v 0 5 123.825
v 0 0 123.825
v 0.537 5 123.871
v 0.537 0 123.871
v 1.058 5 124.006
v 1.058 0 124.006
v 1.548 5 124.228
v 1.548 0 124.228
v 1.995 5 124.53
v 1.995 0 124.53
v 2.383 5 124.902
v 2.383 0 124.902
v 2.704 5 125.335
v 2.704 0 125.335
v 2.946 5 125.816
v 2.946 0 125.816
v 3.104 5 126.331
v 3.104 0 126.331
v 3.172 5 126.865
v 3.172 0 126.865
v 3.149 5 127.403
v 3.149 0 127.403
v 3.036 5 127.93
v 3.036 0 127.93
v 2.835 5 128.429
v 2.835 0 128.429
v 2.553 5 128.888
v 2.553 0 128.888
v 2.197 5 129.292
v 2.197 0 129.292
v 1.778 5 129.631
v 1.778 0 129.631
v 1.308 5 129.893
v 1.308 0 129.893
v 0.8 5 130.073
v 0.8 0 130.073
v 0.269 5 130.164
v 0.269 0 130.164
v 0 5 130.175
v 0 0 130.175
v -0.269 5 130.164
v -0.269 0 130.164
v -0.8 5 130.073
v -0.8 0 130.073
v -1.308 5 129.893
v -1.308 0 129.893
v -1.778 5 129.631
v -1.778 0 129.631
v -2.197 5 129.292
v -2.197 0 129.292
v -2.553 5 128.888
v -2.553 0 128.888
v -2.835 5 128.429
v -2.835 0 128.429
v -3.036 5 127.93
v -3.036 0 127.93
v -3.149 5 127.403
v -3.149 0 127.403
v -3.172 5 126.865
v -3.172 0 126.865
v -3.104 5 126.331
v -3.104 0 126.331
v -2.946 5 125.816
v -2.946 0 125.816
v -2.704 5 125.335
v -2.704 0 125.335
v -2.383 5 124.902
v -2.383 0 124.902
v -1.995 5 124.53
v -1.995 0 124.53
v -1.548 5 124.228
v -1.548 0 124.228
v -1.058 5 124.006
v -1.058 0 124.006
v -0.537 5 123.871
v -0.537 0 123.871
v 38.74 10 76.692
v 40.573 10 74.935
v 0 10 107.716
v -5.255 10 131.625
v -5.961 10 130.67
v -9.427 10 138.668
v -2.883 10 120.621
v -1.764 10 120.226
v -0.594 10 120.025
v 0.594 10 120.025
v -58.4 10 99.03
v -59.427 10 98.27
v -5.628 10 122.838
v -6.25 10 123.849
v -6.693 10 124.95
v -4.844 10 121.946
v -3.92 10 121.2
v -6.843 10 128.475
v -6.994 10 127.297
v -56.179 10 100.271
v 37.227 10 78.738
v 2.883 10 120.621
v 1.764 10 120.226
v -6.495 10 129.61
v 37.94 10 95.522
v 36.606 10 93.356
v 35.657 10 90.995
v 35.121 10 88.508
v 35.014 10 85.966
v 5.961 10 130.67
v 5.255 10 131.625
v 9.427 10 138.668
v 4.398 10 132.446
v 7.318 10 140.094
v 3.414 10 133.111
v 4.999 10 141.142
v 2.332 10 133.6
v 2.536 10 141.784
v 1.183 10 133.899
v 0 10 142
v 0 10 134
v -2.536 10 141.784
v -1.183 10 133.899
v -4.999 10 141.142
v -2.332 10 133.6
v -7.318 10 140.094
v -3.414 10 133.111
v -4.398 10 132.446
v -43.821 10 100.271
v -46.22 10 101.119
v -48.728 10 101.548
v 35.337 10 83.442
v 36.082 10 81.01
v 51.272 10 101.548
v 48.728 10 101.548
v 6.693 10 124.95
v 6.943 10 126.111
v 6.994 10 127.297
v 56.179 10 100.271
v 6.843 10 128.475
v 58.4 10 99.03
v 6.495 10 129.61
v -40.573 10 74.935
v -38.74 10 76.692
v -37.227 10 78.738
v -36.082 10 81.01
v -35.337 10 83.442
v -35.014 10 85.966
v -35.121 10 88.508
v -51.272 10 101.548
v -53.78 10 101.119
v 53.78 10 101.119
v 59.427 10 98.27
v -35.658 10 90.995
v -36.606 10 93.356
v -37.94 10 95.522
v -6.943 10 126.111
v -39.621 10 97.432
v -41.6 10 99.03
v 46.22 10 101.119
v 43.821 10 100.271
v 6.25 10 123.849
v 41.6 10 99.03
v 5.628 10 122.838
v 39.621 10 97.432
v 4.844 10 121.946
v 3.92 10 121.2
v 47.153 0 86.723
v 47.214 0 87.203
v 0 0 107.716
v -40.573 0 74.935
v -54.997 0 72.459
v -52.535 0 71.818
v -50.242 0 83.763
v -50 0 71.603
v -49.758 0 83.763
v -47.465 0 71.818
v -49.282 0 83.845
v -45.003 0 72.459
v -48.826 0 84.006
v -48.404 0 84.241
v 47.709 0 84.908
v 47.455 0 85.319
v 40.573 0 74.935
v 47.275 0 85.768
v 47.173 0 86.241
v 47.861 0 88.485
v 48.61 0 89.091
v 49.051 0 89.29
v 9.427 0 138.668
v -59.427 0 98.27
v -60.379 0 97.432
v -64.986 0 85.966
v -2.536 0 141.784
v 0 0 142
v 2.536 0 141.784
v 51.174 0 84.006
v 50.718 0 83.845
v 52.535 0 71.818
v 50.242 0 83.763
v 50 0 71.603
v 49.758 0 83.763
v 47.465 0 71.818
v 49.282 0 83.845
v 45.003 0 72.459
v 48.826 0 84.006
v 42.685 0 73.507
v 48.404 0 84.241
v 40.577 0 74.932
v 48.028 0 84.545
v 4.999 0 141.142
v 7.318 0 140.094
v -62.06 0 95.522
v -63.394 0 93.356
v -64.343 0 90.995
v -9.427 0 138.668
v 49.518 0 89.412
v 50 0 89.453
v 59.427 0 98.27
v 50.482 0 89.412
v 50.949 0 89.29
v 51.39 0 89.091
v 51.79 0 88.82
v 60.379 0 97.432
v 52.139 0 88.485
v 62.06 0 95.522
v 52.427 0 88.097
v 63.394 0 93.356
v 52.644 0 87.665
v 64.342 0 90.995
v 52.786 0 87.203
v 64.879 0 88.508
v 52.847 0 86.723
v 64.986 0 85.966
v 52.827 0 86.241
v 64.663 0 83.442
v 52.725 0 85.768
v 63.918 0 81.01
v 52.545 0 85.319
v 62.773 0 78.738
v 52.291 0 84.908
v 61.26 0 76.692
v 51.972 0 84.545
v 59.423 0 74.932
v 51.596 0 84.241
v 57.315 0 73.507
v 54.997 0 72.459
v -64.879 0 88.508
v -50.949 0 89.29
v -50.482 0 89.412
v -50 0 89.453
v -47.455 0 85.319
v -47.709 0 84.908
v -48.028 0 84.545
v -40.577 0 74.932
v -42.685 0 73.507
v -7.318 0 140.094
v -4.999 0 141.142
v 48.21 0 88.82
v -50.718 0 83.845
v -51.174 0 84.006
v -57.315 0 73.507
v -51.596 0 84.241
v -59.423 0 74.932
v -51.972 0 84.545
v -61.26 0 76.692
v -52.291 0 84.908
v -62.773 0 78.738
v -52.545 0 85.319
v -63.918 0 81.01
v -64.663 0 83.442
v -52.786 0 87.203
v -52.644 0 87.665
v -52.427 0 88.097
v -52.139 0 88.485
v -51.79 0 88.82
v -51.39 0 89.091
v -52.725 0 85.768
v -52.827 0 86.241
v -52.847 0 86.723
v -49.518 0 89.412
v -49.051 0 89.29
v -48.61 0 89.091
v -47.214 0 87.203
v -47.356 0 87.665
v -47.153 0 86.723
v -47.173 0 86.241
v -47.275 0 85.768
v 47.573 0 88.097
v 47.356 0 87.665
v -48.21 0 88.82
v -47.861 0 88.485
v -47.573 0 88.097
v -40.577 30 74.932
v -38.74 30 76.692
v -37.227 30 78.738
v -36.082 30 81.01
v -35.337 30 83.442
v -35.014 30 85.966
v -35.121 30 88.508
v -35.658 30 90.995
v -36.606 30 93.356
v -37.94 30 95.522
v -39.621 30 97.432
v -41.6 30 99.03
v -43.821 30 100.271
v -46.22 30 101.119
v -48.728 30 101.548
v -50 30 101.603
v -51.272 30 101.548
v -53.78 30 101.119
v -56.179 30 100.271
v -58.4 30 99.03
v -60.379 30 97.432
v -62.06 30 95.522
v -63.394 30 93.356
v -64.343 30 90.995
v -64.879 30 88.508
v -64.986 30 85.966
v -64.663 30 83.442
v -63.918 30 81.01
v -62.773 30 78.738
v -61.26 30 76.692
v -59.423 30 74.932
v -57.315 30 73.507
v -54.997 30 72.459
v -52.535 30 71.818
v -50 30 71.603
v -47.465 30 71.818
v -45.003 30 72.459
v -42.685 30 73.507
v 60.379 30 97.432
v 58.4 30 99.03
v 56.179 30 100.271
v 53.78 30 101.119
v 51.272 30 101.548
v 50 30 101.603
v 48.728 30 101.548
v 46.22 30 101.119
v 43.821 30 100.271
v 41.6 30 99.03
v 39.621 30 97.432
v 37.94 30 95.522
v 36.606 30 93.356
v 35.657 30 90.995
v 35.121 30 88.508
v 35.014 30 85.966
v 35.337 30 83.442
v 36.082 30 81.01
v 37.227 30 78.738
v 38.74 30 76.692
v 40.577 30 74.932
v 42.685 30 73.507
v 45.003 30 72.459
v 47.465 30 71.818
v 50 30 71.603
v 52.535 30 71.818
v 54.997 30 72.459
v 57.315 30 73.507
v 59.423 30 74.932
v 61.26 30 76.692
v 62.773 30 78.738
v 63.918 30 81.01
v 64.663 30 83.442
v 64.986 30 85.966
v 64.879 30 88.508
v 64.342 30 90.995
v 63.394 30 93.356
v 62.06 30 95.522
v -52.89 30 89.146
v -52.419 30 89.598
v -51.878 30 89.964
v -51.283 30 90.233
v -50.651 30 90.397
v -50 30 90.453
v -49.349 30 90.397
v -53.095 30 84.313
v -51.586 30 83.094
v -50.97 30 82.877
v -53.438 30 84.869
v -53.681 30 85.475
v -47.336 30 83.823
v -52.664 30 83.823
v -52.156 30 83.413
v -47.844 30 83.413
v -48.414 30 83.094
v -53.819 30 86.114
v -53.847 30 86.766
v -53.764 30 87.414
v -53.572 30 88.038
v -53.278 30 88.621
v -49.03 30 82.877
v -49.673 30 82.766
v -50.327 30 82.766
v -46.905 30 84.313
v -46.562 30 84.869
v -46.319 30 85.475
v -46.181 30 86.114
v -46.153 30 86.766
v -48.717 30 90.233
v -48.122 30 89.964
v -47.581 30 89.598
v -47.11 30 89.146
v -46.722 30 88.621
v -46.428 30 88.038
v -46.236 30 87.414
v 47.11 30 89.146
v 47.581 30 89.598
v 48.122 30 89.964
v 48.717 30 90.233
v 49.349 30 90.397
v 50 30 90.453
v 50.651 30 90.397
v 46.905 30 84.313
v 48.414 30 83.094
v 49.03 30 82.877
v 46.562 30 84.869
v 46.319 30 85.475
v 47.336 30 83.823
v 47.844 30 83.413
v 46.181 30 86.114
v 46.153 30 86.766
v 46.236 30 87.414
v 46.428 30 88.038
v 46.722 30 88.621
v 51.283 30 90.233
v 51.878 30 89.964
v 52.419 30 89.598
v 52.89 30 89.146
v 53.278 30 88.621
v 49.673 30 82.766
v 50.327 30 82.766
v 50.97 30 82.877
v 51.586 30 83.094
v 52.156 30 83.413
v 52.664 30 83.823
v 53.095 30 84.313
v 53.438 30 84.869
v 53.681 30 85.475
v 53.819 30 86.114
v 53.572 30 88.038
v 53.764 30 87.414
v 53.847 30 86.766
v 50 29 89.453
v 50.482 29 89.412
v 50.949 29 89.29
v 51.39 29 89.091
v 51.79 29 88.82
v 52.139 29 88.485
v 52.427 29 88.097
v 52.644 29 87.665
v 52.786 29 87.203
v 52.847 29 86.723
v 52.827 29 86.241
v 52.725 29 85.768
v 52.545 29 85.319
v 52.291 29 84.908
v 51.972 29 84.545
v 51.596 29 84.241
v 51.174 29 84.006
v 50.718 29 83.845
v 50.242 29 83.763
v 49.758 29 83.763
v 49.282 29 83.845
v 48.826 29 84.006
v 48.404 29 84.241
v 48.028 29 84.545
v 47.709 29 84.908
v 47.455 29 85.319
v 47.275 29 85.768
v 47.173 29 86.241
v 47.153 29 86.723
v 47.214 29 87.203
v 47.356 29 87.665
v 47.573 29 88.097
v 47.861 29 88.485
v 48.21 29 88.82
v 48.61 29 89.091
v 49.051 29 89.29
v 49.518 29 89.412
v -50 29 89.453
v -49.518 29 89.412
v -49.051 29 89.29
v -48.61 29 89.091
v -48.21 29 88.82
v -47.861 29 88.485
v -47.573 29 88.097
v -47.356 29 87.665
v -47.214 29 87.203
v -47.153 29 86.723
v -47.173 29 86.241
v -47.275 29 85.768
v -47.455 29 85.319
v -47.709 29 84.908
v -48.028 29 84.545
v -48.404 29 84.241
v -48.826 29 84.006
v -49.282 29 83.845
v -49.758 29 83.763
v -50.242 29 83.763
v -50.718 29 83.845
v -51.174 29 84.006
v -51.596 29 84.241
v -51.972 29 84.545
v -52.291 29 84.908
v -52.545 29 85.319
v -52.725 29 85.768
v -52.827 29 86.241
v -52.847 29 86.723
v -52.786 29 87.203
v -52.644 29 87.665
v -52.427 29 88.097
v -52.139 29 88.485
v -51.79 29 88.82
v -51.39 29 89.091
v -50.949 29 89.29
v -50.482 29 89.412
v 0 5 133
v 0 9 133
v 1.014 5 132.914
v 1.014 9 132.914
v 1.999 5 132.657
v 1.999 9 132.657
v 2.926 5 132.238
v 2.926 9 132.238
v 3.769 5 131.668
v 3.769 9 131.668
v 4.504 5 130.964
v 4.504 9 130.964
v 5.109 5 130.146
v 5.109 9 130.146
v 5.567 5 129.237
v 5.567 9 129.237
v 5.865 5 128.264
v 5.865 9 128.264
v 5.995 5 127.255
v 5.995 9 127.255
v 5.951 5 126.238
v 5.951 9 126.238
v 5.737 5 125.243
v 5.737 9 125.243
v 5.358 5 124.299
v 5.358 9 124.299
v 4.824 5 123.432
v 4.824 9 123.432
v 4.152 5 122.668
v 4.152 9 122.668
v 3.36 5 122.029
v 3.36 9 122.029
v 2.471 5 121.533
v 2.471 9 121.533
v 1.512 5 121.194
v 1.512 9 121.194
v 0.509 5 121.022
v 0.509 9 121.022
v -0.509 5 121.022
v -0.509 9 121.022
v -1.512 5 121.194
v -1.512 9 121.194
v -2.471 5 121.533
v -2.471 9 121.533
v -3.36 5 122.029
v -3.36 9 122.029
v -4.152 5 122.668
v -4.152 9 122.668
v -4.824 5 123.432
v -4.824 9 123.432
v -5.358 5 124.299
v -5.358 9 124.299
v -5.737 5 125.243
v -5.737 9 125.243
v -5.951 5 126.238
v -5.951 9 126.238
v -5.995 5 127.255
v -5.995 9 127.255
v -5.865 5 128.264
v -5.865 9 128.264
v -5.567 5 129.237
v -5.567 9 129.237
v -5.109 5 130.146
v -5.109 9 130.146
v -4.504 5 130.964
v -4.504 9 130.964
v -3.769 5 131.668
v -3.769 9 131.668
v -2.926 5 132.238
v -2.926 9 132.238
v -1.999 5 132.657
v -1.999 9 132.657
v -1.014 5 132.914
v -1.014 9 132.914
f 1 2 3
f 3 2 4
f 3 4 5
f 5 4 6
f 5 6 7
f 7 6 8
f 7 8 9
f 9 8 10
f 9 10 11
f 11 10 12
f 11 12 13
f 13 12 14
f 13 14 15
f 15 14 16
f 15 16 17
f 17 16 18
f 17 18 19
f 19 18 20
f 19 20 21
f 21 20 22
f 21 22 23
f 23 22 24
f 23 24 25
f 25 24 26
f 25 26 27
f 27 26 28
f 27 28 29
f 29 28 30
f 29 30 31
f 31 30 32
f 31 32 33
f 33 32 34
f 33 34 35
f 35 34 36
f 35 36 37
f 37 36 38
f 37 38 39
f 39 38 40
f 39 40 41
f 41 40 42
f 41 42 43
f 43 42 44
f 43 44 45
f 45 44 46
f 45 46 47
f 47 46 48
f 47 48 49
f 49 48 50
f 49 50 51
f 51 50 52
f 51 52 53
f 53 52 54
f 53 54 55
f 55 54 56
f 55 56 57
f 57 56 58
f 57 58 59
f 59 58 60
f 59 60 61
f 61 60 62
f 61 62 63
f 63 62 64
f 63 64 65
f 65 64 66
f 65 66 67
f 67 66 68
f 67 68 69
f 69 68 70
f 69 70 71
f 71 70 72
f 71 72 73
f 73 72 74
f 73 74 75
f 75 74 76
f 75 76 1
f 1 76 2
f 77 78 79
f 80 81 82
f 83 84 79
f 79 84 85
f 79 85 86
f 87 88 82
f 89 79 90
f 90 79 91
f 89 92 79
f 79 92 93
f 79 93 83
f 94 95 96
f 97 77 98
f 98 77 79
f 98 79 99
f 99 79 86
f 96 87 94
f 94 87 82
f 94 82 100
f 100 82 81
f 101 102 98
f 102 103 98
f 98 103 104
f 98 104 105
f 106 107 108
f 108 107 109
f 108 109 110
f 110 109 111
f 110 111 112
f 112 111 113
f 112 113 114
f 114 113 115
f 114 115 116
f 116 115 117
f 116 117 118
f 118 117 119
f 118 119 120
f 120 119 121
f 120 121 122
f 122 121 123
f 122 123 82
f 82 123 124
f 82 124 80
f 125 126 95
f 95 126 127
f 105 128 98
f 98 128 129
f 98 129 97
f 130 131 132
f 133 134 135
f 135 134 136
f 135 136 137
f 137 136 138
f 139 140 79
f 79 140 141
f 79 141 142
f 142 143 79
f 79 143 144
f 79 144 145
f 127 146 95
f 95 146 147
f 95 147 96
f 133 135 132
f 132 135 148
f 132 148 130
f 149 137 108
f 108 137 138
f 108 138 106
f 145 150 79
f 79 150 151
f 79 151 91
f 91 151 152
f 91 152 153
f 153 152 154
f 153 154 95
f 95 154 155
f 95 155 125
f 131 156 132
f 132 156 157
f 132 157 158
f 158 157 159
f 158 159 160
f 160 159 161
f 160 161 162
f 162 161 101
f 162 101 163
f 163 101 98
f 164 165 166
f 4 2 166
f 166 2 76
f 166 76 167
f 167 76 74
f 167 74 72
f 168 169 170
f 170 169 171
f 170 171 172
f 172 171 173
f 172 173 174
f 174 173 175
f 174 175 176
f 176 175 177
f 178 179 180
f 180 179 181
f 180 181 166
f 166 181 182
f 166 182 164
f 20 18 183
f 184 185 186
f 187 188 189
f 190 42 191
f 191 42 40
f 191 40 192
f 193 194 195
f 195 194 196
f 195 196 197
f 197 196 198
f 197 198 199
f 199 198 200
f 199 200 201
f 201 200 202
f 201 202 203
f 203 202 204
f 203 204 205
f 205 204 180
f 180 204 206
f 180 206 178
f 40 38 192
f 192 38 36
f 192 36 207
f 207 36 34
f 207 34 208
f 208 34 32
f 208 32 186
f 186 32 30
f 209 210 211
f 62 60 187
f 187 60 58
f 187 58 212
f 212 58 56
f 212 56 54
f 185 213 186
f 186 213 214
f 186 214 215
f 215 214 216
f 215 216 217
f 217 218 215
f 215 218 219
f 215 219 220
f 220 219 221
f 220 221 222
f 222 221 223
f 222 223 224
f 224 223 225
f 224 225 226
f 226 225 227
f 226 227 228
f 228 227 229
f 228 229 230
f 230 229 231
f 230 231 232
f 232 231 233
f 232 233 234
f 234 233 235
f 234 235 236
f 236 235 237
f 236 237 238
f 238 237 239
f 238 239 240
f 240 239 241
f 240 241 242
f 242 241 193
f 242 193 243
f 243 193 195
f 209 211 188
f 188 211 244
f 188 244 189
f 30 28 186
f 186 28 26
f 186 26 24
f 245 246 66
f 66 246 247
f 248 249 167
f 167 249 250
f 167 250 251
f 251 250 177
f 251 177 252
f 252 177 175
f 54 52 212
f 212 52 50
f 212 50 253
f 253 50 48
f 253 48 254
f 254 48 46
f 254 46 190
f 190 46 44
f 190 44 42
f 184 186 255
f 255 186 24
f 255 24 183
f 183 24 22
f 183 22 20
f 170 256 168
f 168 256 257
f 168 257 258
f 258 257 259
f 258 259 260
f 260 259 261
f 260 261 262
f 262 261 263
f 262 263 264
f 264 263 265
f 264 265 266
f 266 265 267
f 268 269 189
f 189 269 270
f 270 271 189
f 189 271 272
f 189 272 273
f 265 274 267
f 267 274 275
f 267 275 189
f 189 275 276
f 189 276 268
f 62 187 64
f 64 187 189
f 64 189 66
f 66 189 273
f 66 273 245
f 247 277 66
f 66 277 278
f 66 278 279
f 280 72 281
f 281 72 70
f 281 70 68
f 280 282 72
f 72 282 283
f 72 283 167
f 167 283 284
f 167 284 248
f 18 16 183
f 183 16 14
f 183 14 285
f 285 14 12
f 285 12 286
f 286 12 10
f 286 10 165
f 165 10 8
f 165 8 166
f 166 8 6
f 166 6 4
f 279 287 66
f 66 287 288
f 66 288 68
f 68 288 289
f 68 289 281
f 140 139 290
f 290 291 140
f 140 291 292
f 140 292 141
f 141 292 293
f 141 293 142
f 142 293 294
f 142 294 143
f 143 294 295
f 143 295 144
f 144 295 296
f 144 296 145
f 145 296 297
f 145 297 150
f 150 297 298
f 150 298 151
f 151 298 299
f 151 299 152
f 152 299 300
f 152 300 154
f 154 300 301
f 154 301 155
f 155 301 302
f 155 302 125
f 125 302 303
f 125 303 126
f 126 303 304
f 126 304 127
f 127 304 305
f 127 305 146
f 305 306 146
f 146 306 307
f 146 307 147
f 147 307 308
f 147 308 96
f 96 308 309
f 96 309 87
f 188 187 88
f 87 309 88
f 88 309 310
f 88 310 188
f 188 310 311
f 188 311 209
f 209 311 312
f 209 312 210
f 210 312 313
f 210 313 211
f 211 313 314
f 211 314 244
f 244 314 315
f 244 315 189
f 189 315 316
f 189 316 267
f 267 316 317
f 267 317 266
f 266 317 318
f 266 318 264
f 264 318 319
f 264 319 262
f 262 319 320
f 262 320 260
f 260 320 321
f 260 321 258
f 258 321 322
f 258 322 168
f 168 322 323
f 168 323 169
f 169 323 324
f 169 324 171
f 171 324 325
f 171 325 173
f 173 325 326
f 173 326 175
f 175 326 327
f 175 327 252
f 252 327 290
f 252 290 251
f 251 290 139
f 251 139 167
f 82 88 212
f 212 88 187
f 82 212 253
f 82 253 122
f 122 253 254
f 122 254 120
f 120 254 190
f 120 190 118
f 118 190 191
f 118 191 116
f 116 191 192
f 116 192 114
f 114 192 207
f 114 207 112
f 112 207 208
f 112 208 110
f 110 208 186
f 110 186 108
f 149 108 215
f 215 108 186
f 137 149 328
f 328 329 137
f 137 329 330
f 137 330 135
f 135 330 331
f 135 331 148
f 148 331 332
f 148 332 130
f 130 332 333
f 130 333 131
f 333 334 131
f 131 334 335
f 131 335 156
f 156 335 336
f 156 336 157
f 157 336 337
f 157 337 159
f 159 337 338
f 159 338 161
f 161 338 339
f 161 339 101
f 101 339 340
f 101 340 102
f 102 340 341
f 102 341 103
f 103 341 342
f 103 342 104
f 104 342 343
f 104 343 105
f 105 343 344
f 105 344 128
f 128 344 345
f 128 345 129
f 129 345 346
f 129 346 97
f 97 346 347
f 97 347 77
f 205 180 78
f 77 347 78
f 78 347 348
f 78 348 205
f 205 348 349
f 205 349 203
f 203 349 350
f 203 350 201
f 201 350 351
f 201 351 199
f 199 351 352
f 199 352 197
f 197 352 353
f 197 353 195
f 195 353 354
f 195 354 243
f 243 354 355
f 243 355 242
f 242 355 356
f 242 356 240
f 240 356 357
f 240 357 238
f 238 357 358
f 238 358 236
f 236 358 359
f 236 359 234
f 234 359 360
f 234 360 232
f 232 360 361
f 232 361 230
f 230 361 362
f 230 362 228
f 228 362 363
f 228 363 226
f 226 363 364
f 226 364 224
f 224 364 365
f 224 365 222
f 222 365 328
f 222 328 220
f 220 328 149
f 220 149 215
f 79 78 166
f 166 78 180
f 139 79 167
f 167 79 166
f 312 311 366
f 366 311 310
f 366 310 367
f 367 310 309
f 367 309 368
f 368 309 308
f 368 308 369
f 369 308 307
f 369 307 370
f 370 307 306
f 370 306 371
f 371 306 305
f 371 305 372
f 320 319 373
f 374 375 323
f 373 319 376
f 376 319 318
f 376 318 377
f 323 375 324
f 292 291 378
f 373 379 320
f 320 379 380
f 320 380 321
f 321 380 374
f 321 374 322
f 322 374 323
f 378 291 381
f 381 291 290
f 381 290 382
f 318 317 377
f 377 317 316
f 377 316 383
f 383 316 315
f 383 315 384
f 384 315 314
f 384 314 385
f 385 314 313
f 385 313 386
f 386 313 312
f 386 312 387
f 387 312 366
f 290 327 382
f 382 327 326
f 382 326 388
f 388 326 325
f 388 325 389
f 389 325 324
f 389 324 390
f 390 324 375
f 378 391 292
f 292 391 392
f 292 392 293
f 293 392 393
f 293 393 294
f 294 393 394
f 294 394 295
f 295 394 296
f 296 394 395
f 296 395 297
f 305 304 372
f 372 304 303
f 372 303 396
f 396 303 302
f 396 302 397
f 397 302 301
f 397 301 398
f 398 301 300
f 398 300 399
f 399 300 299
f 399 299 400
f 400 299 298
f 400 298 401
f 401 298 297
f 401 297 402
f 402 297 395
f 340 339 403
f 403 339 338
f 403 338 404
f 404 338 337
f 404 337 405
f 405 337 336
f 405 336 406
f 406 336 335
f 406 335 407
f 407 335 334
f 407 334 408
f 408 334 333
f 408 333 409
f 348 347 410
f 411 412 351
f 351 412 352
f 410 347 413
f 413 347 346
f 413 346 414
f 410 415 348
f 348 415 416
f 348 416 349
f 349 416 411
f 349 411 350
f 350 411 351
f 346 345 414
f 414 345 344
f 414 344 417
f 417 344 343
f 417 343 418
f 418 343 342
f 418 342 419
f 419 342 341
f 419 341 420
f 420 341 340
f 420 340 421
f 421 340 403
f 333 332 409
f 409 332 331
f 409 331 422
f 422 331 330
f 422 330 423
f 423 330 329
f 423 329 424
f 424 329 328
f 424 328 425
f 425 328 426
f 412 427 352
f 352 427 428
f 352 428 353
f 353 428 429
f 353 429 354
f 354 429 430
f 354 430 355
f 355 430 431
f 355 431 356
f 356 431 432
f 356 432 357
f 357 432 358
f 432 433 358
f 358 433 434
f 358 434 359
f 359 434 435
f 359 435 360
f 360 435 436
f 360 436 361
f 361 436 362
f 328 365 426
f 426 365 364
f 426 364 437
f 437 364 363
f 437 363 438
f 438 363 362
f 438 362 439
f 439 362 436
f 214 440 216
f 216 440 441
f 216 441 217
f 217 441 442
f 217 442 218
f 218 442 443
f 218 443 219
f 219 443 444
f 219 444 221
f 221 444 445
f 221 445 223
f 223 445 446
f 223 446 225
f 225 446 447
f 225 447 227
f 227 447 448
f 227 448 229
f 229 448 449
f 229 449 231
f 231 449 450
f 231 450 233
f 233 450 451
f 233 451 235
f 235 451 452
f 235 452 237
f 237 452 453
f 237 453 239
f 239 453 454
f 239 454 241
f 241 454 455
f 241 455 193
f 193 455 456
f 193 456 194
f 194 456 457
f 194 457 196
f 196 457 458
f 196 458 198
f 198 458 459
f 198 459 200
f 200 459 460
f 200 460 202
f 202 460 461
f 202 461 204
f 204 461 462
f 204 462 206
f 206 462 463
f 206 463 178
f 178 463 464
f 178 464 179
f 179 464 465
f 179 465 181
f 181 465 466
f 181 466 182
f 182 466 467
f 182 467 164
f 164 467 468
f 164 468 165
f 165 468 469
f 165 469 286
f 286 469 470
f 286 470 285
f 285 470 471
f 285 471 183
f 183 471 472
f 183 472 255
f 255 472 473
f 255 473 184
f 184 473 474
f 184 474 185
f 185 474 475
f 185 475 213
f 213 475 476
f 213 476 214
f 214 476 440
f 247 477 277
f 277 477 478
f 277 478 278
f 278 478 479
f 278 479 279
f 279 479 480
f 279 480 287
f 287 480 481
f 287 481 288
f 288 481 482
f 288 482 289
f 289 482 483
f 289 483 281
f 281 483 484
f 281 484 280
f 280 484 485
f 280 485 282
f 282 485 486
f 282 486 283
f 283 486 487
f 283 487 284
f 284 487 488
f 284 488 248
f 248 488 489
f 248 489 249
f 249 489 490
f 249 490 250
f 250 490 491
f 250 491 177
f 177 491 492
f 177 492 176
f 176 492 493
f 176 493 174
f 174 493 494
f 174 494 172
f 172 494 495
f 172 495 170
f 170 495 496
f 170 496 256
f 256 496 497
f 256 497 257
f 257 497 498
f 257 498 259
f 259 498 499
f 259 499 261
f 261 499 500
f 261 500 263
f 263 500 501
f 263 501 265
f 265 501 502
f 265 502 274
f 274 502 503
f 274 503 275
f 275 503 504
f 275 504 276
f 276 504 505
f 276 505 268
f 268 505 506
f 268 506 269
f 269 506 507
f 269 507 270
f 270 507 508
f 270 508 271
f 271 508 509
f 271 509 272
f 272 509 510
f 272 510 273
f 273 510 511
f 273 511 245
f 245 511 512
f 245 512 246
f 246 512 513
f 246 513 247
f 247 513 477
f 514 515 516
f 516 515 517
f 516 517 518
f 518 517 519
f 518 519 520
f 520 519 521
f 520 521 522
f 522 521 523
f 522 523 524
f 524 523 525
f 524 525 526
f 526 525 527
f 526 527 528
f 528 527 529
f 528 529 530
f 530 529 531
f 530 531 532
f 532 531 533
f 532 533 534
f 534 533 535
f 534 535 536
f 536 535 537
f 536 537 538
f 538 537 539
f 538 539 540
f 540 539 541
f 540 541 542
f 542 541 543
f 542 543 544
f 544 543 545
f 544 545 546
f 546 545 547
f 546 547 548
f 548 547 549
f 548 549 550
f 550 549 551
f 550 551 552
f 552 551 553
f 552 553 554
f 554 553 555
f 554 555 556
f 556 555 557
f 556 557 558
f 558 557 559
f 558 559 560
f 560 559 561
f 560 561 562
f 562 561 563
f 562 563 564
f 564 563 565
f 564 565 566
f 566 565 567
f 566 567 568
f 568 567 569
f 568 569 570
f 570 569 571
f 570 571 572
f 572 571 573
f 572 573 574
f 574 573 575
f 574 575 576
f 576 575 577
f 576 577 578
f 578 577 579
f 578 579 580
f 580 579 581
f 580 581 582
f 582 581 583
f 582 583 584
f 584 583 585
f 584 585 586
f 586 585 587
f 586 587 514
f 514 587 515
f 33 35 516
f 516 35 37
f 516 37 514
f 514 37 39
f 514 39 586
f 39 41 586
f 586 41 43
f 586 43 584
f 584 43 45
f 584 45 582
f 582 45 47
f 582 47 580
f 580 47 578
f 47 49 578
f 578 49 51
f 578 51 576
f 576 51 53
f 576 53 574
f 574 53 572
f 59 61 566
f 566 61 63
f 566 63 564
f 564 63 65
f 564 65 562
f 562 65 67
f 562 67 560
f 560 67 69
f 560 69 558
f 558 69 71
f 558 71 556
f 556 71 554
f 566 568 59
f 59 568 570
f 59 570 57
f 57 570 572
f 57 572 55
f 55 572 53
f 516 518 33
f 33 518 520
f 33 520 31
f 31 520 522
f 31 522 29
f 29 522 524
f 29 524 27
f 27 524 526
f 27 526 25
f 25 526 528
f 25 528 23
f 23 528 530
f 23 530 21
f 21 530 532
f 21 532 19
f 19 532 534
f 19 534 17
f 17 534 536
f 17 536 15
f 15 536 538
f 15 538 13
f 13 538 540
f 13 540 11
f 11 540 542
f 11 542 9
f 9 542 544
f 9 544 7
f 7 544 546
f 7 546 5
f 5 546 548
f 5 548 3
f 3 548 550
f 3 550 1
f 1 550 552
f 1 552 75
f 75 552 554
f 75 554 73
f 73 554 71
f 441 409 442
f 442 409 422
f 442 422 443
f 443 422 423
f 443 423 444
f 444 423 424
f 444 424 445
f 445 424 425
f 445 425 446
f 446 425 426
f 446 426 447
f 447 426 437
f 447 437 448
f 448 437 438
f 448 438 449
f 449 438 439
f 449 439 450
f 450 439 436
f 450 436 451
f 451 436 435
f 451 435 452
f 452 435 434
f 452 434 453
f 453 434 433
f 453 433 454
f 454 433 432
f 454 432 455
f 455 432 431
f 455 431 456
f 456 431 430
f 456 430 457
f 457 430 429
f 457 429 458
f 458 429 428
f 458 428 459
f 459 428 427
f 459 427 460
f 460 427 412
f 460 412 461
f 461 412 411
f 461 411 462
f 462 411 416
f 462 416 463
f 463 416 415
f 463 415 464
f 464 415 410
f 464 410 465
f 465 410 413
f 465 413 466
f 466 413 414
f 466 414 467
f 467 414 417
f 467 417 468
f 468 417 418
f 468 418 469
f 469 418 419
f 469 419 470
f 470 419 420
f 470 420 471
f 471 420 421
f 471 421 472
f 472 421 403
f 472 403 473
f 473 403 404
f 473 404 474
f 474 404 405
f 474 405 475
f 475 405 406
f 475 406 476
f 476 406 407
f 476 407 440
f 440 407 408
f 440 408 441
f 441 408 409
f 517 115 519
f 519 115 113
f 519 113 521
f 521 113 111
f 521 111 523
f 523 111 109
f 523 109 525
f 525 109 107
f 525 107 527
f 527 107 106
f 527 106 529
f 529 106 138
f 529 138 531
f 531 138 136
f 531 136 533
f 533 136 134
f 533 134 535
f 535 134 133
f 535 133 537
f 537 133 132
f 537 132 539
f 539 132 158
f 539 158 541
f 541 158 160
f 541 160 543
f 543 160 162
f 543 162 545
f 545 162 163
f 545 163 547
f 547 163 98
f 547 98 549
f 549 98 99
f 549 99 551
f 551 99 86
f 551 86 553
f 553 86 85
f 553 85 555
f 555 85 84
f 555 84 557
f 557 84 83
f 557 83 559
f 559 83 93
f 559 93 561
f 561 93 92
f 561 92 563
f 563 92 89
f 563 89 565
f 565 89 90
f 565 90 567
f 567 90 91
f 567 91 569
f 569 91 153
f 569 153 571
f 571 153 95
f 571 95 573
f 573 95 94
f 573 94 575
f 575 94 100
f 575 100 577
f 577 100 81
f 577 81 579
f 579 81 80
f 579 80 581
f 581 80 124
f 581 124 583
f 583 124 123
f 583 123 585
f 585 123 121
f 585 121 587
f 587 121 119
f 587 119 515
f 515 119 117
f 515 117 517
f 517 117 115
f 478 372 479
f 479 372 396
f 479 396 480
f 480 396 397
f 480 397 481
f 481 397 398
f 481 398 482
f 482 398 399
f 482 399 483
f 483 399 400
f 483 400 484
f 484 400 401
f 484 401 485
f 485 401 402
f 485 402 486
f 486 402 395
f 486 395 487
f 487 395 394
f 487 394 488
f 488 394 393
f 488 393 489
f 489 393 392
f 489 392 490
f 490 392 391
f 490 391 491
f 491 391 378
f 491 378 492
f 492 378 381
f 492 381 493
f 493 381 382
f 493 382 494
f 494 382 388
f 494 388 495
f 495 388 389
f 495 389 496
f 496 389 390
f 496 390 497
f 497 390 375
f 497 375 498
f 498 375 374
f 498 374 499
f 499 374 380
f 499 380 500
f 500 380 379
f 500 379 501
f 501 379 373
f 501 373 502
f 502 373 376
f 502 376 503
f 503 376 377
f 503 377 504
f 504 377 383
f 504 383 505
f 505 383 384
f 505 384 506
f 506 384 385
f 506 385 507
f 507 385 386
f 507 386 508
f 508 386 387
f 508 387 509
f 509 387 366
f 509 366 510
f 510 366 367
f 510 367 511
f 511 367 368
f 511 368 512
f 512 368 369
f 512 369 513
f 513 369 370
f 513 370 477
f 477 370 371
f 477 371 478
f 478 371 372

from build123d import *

# Parameters (mm, degrees)
SKETCH10_R          = 3.175
BOSS_EXTRUDE4_DEPTH = 10
SKETCH11_R          = 15
BOSS_EXTRUDE5_DEPTH = 20
SKETCH12_R          = 2.85
CUT_EXTRUDE4_DEPTH  = 37
SKETCH13_R          = 6
CUT_EXTRUDE5_DEPTH  = 5
CHAMFER2_SIZE       = 1


with BuildPart() as part:
    # Sketch10 → Boss-Extrude4 (new body)
    with BuildSketch(Plane(origin=(0, 0, 0), x_dir=(1, 0, 0), z_dir=(0, 1, 0))):
        with BuildLine():
            Line((-40.573129599, -74.934887896), (0, -107.71591519))
            Line((0, -107.71591519), (40.573129599, -74.934887896))
            ThreePointArc((40.573129599, -74.934887896), (61.667652482, -77.175669978), (59.426870401, -98.270192861))
            Line((59.426870401, -98.270192861), (9.426870401, -138.667652482))
            ThreePointArc((9.426870401, -138.667652482), (0, -142), (-9.426870401, -138.667652482))
            Line((-9.426870401, -138.667652482), (-59.426870401, -98.270192861))
            ThreePointArc((-59.426870401, -98.270192861), (-61.667652482, -77.175669978), (-40.573129599, -74.934887896))
        make_face()
        with Locations((0, -127)):
            Circle(SKETCH10_R, mode=Mode.SUBTRACT)
    extrude(amount=BOSS_EXTRUDE4_DEPTH)

    # Sketch11 → Boss-Extrude5 (add)
    with BuildSketch(Plane(origin=(0, 10, 0), x_dir=(1, 0, 0), z_dir=(0, 1, 0))):
        with Locations((-50, -86.602540378)):
            Circle(SKETCH11_R)
        with Locations((50, -86.602540378)):
            Circle(SKETCH11_R)
    extrude(amount=BOSS_EXTRUDE5_DEPTH)

    # Sketch12 → Cut-Extrude4 (cut)
    with BuildSketch(Plane(origin=(0, 30, 0), x_dir=(1, 0, 0), z_dir=(0, 1, 0))):
        with Locations((-50, -86.602540378)):
            Circle(SKETCH12_R)
        with Locations((50, -86.602540378)):
            Circle(SKETCH12_R)
    extrude(amount=-CUT_EXTRUDE4_DEPTH, mode=Mode.SUBTRACT)

    # Sketch13 → Cut-Extrude5 (cut)
    with BuildSketch(Plane(origin=(0, 10, 0), x_dir=(1, 0, 0), z_dir=(0, 1, 0))):
        with Locations((0, -127)):
            Circle(SKETCH13_R)
    extrude(amount=-CUT_EXTRUDE5_DEPTH, mode=Mode.SUBTRACT)

    # Chamfer2
    chamfer2_edges = [part.edges().sort_by_distance(p)[0] for p in [
        (-52.85, 30, 86.602540378),
        (47.15, 30, 86.602540378),
        (-6, 10, 127),
    ]]
    chamfer(chamfer2_edges, length=CHAMFER2_SIZE)


solid = part.part
